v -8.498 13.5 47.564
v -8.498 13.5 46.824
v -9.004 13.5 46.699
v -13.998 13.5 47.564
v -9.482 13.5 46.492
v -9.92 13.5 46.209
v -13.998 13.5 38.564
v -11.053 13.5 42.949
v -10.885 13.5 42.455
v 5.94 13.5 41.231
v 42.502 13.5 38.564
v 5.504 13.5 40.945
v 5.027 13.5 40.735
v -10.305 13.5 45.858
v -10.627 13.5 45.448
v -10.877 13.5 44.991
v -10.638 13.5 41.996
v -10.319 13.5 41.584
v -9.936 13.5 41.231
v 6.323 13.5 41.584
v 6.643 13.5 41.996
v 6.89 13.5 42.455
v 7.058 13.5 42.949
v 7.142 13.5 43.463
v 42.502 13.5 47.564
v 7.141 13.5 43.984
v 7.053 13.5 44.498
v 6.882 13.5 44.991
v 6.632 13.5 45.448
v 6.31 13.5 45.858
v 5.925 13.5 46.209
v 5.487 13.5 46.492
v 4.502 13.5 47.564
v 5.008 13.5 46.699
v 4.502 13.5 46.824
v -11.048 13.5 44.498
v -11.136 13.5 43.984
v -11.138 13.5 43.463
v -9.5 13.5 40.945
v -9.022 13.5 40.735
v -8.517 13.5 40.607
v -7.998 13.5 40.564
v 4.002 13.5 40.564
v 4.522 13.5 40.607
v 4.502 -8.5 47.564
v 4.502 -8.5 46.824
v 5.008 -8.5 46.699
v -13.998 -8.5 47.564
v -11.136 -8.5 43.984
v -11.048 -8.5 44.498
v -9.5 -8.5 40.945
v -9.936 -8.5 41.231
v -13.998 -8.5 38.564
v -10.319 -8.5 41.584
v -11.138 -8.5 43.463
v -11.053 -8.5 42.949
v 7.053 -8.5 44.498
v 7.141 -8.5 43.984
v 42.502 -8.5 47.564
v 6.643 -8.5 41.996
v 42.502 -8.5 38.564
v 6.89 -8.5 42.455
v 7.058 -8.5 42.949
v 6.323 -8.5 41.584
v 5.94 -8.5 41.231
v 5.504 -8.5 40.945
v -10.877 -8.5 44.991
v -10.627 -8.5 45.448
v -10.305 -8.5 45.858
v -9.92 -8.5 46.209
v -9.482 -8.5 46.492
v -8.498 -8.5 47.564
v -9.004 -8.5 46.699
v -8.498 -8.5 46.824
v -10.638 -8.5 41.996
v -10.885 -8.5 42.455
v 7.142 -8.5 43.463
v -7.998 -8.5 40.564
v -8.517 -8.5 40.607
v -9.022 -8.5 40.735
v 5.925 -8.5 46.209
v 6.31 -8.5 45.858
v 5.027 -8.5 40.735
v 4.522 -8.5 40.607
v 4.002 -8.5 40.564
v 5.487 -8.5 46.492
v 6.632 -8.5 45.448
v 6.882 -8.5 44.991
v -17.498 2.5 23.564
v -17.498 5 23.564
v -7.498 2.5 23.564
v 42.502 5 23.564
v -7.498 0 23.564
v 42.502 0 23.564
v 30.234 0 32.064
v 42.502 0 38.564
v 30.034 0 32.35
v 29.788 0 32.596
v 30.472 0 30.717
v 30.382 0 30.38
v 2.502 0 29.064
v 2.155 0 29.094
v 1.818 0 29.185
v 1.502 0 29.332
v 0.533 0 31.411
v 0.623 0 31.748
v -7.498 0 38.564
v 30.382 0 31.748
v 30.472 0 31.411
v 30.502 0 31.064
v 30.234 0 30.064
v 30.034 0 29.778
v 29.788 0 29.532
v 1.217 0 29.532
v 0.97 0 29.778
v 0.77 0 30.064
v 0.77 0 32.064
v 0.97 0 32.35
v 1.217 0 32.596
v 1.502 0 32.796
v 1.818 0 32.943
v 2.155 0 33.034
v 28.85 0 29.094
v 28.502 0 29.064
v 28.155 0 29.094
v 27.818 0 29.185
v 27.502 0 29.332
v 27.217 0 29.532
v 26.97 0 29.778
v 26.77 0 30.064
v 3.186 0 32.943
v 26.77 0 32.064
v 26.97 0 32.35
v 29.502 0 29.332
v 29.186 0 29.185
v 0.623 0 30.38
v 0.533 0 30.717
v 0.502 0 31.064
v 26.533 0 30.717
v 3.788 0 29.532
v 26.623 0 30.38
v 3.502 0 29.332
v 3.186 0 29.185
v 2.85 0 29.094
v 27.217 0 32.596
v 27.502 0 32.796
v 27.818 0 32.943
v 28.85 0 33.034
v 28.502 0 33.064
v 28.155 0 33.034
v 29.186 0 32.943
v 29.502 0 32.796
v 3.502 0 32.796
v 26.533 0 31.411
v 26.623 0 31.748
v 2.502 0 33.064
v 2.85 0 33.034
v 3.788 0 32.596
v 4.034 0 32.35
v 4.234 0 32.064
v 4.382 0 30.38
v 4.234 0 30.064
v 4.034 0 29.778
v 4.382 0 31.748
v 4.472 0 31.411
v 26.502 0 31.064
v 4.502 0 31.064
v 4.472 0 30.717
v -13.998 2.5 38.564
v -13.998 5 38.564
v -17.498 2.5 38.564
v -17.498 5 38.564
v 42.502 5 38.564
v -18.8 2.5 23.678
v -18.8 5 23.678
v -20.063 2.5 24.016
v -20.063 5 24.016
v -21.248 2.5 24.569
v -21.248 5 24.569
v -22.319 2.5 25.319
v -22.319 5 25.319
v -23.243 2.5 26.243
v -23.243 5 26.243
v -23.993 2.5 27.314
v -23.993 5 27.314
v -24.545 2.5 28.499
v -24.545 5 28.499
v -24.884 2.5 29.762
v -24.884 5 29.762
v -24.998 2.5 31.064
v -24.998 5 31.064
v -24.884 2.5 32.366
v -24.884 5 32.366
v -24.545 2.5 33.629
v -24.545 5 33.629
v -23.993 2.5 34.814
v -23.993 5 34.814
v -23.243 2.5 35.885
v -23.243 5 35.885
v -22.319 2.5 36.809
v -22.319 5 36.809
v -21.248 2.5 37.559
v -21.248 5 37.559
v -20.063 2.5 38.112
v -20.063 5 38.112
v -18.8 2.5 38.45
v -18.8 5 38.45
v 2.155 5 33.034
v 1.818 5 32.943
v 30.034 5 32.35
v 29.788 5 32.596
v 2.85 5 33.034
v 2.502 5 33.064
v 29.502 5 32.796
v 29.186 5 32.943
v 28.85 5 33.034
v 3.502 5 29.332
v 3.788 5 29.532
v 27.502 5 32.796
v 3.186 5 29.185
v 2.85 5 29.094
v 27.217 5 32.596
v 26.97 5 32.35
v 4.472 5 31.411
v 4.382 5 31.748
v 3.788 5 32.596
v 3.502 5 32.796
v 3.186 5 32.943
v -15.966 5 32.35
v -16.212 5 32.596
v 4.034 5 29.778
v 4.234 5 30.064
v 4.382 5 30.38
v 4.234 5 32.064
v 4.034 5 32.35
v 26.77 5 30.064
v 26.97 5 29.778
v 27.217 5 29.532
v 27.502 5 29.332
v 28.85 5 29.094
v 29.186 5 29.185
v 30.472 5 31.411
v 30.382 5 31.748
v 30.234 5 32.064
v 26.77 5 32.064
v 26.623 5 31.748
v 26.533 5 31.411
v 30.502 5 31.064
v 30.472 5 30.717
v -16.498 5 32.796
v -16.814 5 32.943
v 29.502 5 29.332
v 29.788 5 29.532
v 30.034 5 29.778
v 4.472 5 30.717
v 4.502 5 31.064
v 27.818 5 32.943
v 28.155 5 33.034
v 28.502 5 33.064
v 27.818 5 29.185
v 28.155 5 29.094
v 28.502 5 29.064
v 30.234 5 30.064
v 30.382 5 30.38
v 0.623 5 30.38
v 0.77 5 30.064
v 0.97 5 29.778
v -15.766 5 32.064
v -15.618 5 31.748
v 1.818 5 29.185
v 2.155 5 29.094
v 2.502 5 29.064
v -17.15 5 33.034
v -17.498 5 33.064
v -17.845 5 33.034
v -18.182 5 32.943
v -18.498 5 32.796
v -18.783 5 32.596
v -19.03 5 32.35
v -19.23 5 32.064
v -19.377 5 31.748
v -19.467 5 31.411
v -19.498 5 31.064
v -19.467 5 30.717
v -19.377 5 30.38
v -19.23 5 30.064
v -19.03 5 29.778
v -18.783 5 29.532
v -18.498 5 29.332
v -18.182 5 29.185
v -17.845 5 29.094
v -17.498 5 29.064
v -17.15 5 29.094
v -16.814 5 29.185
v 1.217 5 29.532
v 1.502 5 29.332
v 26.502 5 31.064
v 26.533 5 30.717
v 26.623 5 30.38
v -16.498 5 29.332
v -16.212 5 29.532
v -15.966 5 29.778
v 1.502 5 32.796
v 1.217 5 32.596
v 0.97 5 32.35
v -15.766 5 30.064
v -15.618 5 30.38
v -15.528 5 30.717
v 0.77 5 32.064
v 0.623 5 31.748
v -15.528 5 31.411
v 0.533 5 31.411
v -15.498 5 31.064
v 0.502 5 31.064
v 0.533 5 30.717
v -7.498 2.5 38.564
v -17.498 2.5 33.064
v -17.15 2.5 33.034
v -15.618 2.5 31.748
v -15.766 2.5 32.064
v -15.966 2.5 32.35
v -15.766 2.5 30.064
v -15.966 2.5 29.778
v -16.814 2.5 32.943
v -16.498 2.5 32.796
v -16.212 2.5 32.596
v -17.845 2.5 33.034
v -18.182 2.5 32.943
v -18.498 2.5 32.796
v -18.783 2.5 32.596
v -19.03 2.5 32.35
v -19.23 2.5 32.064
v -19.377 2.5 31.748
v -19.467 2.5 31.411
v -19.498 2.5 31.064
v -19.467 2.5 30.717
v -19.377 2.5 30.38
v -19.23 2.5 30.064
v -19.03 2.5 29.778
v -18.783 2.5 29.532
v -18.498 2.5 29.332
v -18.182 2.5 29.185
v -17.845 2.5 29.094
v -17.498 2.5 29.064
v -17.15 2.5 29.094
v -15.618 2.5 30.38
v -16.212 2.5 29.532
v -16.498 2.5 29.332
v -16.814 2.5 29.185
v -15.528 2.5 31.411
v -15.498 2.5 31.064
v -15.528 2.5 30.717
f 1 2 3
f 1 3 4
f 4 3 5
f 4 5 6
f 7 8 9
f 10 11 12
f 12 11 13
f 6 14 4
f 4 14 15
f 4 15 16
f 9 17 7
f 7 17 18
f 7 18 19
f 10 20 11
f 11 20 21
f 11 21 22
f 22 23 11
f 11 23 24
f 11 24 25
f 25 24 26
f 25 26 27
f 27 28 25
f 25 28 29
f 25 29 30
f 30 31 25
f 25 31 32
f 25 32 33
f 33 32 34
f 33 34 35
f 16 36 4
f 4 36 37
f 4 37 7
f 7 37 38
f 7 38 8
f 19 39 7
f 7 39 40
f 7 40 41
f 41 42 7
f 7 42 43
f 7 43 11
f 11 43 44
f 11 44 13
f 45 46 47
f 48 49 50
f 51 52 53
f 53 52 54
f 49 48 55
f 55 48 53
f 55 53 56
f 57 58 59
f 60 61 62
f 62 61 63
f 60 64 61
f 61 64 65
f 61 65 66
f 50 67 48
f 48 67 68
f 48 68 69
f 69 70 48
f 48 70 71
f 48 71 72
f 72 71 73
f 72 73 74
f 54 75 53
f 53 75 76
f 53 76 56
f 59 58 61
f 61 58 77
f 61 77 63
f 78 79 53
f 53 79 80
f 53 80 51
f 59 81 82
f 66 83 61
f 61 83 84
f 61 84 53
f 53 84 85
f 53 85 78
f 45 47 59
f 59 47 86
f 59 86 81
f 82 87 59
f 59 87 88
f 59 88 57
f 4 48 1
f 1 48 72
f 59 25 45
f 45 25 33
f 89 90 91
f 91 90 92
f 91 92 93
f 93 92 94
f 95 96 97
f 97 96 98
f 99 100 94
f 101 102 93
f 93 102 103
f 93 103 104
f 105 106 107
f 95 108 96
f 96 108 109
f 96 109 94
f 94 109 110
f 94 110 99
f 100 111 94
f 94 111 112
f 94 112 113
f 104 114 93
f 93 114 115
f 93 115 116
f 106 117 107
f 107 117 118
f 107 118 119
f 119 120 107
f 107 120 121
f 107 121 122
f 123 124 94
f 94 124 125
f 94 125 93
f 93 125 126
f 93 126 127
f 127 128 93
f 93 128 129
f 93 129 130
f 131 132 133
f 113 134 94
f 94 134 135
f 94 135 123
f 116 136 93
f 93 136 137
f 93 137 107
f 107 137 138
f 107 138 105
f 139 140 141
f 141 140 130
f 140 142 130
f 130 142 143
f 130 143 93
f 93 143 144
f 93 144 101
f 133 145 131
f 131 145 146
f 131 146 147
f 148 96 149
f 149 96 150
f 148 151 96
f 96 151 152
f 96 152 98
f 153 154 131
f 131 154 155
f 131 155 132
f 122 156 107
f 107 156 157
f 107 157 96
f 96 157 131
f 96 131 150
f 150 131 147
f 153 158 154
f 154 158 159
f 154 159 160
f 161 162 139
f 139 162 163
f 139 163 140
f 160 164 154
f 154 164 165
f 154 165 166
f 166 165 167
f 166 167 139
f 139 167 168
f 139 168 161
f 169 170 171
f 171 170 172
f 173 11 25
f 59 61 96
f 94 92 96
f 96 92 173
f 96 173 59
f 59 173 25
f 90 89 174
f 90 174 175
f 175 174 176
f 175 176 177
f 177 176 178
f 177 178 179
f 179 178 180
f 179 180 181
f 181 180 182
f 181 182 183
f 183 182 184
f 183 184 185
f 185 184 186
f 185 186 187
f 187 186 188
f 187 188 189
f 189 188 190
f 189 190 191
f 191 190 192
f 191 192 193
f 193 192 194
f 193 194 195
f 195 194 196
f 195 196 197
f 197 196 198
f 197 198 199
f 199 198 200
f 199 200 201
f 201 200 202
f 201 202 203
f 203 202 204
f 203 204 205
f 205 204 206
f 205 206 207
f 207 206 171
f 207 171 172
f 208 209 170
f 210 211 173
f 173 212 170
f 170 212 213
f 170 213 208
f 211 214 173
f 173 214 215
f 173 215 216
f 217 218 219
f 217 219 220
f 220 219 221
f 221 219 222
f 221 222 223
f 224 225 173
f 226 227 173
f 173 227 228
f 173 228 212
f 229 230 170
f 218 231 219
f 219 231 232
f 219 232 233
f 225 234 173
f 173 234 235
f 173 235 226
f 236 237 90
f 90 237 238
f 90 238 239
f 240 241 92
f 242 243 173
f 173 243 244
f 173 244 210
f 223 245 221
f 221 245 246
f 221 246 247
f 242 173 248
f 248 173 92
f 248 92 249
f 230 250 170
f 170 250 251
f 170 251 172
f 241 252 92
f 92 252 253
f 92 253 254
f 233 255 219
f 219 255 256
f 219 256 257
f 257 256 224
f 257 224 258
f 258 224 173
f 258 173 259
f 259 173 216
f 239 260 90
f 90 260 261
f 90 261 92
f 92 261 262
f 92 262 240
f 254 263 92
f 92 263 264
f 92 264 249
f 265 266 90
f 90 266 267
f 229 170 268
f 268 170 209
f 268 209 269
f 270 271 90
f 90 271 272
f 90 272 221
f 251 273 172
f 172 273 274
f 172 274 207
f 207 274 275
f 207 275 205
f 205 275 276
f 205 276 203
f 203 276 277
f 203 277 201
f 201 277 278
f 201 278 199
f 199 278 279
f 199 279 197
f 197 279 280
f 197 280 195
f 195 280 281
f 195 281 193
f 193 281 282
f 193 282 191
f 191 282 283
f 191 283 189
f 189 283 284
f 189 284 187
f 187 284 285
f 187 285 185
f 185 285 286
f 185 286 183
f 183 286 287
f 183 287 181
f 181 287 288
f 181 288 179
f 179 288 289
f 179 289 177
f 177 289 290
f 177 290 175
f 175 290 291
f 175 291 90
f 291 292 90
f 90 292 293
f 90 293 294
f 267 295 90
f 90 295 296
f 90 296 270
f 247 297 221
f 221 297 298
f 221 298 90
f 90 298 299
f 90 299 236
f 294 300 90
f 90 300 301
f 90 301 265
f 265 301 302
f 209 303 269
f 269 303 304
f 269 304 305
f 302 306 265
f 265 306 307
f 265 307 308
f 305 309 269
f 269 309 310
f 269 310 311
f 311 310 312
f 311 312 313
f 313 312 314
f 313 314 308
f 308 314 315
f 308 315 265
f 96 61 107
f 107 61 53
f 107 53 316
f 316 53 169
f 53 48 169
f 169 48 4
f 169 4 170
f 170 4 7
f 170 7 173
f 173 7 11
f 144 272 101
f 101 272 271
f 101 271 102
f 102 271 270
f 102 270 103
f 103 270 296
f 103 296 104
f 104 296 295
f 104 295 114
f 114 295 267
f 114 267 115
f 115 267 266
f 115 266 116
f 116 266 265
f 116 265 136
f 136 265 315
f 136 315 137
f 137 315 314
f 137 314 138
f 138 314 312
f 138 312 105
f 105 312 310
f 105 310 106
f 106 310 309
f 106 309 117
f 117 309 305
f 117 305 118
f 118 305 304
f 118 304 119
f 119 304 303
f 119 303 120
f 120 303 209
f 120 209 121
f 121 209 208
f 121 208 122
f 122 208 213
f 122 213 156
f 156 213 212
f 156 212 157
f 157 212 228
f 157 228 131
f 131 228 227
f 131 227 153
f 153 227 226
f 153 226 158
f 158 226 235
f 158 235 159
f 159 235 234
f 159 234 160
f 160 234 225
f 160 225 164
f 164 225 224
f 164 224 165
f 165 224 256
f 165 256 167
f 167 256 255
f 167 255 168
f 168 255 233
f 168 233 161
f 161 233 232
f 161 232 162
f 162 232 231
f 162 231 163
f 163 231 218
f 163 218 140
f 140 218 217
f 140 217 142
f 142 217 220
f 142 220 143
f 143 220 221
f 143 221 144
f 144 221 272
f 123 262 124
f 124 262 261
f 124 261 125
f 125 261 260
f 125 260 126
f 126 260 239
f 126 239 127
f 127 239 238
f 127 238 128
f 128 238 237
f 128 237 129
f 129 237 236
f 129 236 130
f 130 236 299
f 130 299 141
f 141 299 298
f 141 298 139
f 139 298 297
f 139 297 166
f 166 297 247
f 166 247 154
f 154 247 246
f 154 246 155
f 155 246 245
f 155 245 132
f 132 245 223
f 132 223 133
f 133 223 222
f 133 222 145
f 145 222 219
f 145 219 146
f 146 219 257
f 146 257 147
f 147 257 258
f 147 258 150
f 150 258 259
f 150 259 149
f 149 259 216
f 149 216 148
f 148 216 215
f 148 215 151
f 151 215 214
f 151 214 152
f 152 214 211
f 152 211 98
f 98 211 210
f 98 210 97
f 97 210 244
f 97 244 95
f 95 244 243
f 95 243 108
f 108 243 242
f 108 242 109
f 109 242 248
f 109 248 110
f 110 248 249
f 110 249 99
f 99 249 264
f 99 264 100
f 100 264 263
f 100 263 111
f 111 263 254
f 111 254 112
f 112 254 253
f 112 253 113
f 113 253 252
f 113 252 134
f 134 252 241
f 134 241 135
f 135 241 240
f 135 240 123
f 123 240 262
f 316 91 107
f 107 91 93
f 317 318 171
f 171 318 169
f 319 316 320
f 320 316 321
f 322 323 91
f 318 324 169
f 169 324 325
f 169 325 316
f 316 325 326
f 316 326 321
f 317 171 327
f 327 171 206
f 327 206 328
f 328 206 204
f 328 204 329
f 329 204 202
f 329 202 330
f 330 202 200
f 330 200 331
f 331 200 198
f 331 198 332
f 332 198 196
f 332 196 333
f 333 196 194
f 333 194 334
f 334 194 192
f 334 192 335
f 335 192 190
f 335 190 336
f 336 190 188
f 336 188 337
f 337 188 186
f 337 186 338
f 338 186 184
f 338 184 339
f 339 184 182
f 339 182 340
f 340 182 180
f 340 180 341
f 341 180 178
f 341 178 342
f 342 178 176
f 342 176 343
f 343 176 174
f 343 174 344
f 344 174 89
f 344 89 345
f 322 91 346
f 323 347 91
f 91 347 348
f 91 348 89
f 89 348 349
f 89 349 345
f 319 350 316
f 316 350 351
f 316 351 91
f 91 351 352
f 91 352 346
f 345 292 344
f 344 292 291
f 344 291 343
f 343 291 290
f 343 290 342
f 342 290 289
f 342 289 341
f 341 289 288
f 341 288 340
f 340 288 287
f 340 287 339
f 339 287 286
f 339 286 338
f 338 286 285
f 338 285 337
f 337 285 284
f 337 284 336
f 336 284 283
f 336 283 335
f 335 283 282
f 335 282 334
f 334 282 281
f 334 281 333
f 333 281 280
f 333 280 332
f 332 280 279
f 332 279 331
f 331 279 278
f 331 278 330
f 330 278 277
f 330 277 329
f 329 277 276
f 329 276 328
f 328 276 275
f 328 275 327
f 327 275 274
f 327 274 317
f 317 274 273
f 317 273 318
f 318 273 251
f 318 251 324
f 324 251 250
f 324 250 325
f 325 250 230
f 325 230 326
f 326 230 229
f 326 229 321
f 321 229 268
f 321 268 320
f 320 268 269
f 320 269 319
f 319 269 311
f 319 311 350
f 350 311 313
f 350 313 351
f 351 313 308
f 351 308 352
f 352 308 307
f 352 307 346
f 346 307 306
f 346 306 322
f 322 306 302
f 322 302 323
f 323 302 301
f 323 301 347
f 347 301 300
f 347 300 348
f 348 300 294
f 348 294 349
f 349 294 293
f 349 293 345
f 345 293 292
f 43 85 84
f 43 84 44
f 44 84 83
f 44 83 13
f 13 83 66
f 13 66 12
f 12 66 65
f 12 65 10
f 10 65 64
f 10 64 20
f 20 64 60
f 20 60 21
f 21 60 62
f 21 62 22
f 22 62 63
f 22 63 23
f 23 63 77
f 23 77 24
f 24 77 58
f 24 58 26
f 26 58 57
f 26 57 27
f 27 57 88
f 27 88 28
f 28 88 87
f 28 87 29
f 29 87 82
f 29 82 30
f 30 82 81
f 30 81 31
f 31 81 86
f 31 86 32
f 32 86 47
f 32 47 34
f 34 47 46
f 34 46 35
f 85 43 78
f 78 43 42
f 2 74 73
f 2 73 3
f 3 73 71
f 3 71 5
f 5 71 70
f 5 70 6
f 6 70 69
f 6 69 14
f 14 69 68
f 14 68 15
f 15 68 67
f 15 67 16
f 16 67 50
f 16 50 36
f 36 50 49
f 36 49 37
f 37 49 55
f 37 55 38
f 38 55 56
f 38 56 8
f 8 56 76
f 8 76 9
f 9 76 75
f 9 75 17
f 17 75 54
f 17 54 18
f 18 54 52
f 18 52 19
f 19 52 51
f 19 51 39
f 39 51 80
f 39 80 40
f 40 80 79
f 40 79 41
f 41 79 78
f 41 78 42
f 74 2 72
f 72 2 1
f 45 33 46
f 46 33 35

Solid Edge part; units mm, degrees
sketch "Sketch1" plane through (0, 0, 0) normal (0, -1, 0) x (1, 0, 0)
  line L0 (-7.4976, 38.564) -> (42.5024, 38.564)
  line L1 (42.5024, 38.564) -> (42.5024, 23.564)
  line L2 (42.5024, 23.564) -> (-7.4976, 23.564)
  line L3 (-7.4976, 23.564) -> (-17.4976, 23.564)
  arc A0 (-17.4976, 38.564) -> (-17.4976, 23.564) centre (-17.4976, 31.064) ccw
  line L4 (-7.4976, 38.564) -> (-17.4976, 38.564)
  dimension "D1" = 50
  dimension "D2" = 15
extrude "Protrusion1" add sketch "Sketch1" against normal blind 5
sketch "Sketch2" plane through (17.5024, 2.5, 38.564) normal (0, 0, 1) x (1, 0, 0)
  line L0 (-31.5, 11) -> (25, 11)
  line L1 (25, 11) -> (25, -11)
  line L2 (25, -11) -> (-31.5, -11)
  line L3 (-31.5, -11) -> (-31.5, 11)
  dimension "D1" = 8.5
  dimension "D2" = 8.5
  dimension "D3" = 22
  dimension "D4" = 56.5
extrude "Extrusionsausprägung_4" add sketch "Sketch2" along normal blind 9
hole "Bohrung_1" at (2.5024, 0, 31.064) direction (0, 1, 0) diameter 4 end through all
hole "Hole1" at (28.5024, 0, 31.064) direction (0, 1, 0) diameter 4 end through all
sketch "Sketch3" plane through (8.7524, 0, 31.064) normal (0, -1, 0) x (1, 0, 0)
  line L0 (-26.25, 7.5) -> (-16.25, 7.5)
  line L1 (-16.25, 7.5) -> (-16.25, -7.5)
  line L2 (-16.25, -7.5) -> (-26.25, -7.5)
  arc A0 (-26.25, -7.5) -> (-26.25, 7.5) centre (-26.25, 0) cw
extrude "Extrusionsausschnitt_1" cut sketch "Sketch3" against normal blind 2.5
hole "Bohrung_4" at (-17.4976, 2.5, 31.064) direction (0, 1, 0) diameter 4 end through all
sketch "Sketch4" plane through (17.5024, -8.5, 43.064) normal (0, -1, 0) x (1, 0, 0)
  line L0 (-26, 4.5) -> (-13, 4.5)
  line L1 (-13, 4.5) -> (-13, 3.7601)
  arc A0 (-13, 3.7601) -> (-13.5, -2.5) centre (-13.5, 0.65) cw
  line L2 (-25.5, -2.5) -> (-13.5, -2.5)
  arc A1 (-26, 3.7601) -> (-25.5, -2.5) centre (-25.5, 0.65) ccw
  line L3 (-26, 4.5) -> (-26, 3.7601)
  dimension "D1" = 3.15
  dimension "D2" = 3.15
  dimension "D3" = 12
  dimension "D4" = 13
  dimension "D5" = 0.5
  dimension "D6" = 6
  dimension "D7" = 7
  dimension "D8" = 0.7399
  dimension "D9" = 0.7399
extrude "Cutout1" cut sketch "Sketch4" against normal through all
